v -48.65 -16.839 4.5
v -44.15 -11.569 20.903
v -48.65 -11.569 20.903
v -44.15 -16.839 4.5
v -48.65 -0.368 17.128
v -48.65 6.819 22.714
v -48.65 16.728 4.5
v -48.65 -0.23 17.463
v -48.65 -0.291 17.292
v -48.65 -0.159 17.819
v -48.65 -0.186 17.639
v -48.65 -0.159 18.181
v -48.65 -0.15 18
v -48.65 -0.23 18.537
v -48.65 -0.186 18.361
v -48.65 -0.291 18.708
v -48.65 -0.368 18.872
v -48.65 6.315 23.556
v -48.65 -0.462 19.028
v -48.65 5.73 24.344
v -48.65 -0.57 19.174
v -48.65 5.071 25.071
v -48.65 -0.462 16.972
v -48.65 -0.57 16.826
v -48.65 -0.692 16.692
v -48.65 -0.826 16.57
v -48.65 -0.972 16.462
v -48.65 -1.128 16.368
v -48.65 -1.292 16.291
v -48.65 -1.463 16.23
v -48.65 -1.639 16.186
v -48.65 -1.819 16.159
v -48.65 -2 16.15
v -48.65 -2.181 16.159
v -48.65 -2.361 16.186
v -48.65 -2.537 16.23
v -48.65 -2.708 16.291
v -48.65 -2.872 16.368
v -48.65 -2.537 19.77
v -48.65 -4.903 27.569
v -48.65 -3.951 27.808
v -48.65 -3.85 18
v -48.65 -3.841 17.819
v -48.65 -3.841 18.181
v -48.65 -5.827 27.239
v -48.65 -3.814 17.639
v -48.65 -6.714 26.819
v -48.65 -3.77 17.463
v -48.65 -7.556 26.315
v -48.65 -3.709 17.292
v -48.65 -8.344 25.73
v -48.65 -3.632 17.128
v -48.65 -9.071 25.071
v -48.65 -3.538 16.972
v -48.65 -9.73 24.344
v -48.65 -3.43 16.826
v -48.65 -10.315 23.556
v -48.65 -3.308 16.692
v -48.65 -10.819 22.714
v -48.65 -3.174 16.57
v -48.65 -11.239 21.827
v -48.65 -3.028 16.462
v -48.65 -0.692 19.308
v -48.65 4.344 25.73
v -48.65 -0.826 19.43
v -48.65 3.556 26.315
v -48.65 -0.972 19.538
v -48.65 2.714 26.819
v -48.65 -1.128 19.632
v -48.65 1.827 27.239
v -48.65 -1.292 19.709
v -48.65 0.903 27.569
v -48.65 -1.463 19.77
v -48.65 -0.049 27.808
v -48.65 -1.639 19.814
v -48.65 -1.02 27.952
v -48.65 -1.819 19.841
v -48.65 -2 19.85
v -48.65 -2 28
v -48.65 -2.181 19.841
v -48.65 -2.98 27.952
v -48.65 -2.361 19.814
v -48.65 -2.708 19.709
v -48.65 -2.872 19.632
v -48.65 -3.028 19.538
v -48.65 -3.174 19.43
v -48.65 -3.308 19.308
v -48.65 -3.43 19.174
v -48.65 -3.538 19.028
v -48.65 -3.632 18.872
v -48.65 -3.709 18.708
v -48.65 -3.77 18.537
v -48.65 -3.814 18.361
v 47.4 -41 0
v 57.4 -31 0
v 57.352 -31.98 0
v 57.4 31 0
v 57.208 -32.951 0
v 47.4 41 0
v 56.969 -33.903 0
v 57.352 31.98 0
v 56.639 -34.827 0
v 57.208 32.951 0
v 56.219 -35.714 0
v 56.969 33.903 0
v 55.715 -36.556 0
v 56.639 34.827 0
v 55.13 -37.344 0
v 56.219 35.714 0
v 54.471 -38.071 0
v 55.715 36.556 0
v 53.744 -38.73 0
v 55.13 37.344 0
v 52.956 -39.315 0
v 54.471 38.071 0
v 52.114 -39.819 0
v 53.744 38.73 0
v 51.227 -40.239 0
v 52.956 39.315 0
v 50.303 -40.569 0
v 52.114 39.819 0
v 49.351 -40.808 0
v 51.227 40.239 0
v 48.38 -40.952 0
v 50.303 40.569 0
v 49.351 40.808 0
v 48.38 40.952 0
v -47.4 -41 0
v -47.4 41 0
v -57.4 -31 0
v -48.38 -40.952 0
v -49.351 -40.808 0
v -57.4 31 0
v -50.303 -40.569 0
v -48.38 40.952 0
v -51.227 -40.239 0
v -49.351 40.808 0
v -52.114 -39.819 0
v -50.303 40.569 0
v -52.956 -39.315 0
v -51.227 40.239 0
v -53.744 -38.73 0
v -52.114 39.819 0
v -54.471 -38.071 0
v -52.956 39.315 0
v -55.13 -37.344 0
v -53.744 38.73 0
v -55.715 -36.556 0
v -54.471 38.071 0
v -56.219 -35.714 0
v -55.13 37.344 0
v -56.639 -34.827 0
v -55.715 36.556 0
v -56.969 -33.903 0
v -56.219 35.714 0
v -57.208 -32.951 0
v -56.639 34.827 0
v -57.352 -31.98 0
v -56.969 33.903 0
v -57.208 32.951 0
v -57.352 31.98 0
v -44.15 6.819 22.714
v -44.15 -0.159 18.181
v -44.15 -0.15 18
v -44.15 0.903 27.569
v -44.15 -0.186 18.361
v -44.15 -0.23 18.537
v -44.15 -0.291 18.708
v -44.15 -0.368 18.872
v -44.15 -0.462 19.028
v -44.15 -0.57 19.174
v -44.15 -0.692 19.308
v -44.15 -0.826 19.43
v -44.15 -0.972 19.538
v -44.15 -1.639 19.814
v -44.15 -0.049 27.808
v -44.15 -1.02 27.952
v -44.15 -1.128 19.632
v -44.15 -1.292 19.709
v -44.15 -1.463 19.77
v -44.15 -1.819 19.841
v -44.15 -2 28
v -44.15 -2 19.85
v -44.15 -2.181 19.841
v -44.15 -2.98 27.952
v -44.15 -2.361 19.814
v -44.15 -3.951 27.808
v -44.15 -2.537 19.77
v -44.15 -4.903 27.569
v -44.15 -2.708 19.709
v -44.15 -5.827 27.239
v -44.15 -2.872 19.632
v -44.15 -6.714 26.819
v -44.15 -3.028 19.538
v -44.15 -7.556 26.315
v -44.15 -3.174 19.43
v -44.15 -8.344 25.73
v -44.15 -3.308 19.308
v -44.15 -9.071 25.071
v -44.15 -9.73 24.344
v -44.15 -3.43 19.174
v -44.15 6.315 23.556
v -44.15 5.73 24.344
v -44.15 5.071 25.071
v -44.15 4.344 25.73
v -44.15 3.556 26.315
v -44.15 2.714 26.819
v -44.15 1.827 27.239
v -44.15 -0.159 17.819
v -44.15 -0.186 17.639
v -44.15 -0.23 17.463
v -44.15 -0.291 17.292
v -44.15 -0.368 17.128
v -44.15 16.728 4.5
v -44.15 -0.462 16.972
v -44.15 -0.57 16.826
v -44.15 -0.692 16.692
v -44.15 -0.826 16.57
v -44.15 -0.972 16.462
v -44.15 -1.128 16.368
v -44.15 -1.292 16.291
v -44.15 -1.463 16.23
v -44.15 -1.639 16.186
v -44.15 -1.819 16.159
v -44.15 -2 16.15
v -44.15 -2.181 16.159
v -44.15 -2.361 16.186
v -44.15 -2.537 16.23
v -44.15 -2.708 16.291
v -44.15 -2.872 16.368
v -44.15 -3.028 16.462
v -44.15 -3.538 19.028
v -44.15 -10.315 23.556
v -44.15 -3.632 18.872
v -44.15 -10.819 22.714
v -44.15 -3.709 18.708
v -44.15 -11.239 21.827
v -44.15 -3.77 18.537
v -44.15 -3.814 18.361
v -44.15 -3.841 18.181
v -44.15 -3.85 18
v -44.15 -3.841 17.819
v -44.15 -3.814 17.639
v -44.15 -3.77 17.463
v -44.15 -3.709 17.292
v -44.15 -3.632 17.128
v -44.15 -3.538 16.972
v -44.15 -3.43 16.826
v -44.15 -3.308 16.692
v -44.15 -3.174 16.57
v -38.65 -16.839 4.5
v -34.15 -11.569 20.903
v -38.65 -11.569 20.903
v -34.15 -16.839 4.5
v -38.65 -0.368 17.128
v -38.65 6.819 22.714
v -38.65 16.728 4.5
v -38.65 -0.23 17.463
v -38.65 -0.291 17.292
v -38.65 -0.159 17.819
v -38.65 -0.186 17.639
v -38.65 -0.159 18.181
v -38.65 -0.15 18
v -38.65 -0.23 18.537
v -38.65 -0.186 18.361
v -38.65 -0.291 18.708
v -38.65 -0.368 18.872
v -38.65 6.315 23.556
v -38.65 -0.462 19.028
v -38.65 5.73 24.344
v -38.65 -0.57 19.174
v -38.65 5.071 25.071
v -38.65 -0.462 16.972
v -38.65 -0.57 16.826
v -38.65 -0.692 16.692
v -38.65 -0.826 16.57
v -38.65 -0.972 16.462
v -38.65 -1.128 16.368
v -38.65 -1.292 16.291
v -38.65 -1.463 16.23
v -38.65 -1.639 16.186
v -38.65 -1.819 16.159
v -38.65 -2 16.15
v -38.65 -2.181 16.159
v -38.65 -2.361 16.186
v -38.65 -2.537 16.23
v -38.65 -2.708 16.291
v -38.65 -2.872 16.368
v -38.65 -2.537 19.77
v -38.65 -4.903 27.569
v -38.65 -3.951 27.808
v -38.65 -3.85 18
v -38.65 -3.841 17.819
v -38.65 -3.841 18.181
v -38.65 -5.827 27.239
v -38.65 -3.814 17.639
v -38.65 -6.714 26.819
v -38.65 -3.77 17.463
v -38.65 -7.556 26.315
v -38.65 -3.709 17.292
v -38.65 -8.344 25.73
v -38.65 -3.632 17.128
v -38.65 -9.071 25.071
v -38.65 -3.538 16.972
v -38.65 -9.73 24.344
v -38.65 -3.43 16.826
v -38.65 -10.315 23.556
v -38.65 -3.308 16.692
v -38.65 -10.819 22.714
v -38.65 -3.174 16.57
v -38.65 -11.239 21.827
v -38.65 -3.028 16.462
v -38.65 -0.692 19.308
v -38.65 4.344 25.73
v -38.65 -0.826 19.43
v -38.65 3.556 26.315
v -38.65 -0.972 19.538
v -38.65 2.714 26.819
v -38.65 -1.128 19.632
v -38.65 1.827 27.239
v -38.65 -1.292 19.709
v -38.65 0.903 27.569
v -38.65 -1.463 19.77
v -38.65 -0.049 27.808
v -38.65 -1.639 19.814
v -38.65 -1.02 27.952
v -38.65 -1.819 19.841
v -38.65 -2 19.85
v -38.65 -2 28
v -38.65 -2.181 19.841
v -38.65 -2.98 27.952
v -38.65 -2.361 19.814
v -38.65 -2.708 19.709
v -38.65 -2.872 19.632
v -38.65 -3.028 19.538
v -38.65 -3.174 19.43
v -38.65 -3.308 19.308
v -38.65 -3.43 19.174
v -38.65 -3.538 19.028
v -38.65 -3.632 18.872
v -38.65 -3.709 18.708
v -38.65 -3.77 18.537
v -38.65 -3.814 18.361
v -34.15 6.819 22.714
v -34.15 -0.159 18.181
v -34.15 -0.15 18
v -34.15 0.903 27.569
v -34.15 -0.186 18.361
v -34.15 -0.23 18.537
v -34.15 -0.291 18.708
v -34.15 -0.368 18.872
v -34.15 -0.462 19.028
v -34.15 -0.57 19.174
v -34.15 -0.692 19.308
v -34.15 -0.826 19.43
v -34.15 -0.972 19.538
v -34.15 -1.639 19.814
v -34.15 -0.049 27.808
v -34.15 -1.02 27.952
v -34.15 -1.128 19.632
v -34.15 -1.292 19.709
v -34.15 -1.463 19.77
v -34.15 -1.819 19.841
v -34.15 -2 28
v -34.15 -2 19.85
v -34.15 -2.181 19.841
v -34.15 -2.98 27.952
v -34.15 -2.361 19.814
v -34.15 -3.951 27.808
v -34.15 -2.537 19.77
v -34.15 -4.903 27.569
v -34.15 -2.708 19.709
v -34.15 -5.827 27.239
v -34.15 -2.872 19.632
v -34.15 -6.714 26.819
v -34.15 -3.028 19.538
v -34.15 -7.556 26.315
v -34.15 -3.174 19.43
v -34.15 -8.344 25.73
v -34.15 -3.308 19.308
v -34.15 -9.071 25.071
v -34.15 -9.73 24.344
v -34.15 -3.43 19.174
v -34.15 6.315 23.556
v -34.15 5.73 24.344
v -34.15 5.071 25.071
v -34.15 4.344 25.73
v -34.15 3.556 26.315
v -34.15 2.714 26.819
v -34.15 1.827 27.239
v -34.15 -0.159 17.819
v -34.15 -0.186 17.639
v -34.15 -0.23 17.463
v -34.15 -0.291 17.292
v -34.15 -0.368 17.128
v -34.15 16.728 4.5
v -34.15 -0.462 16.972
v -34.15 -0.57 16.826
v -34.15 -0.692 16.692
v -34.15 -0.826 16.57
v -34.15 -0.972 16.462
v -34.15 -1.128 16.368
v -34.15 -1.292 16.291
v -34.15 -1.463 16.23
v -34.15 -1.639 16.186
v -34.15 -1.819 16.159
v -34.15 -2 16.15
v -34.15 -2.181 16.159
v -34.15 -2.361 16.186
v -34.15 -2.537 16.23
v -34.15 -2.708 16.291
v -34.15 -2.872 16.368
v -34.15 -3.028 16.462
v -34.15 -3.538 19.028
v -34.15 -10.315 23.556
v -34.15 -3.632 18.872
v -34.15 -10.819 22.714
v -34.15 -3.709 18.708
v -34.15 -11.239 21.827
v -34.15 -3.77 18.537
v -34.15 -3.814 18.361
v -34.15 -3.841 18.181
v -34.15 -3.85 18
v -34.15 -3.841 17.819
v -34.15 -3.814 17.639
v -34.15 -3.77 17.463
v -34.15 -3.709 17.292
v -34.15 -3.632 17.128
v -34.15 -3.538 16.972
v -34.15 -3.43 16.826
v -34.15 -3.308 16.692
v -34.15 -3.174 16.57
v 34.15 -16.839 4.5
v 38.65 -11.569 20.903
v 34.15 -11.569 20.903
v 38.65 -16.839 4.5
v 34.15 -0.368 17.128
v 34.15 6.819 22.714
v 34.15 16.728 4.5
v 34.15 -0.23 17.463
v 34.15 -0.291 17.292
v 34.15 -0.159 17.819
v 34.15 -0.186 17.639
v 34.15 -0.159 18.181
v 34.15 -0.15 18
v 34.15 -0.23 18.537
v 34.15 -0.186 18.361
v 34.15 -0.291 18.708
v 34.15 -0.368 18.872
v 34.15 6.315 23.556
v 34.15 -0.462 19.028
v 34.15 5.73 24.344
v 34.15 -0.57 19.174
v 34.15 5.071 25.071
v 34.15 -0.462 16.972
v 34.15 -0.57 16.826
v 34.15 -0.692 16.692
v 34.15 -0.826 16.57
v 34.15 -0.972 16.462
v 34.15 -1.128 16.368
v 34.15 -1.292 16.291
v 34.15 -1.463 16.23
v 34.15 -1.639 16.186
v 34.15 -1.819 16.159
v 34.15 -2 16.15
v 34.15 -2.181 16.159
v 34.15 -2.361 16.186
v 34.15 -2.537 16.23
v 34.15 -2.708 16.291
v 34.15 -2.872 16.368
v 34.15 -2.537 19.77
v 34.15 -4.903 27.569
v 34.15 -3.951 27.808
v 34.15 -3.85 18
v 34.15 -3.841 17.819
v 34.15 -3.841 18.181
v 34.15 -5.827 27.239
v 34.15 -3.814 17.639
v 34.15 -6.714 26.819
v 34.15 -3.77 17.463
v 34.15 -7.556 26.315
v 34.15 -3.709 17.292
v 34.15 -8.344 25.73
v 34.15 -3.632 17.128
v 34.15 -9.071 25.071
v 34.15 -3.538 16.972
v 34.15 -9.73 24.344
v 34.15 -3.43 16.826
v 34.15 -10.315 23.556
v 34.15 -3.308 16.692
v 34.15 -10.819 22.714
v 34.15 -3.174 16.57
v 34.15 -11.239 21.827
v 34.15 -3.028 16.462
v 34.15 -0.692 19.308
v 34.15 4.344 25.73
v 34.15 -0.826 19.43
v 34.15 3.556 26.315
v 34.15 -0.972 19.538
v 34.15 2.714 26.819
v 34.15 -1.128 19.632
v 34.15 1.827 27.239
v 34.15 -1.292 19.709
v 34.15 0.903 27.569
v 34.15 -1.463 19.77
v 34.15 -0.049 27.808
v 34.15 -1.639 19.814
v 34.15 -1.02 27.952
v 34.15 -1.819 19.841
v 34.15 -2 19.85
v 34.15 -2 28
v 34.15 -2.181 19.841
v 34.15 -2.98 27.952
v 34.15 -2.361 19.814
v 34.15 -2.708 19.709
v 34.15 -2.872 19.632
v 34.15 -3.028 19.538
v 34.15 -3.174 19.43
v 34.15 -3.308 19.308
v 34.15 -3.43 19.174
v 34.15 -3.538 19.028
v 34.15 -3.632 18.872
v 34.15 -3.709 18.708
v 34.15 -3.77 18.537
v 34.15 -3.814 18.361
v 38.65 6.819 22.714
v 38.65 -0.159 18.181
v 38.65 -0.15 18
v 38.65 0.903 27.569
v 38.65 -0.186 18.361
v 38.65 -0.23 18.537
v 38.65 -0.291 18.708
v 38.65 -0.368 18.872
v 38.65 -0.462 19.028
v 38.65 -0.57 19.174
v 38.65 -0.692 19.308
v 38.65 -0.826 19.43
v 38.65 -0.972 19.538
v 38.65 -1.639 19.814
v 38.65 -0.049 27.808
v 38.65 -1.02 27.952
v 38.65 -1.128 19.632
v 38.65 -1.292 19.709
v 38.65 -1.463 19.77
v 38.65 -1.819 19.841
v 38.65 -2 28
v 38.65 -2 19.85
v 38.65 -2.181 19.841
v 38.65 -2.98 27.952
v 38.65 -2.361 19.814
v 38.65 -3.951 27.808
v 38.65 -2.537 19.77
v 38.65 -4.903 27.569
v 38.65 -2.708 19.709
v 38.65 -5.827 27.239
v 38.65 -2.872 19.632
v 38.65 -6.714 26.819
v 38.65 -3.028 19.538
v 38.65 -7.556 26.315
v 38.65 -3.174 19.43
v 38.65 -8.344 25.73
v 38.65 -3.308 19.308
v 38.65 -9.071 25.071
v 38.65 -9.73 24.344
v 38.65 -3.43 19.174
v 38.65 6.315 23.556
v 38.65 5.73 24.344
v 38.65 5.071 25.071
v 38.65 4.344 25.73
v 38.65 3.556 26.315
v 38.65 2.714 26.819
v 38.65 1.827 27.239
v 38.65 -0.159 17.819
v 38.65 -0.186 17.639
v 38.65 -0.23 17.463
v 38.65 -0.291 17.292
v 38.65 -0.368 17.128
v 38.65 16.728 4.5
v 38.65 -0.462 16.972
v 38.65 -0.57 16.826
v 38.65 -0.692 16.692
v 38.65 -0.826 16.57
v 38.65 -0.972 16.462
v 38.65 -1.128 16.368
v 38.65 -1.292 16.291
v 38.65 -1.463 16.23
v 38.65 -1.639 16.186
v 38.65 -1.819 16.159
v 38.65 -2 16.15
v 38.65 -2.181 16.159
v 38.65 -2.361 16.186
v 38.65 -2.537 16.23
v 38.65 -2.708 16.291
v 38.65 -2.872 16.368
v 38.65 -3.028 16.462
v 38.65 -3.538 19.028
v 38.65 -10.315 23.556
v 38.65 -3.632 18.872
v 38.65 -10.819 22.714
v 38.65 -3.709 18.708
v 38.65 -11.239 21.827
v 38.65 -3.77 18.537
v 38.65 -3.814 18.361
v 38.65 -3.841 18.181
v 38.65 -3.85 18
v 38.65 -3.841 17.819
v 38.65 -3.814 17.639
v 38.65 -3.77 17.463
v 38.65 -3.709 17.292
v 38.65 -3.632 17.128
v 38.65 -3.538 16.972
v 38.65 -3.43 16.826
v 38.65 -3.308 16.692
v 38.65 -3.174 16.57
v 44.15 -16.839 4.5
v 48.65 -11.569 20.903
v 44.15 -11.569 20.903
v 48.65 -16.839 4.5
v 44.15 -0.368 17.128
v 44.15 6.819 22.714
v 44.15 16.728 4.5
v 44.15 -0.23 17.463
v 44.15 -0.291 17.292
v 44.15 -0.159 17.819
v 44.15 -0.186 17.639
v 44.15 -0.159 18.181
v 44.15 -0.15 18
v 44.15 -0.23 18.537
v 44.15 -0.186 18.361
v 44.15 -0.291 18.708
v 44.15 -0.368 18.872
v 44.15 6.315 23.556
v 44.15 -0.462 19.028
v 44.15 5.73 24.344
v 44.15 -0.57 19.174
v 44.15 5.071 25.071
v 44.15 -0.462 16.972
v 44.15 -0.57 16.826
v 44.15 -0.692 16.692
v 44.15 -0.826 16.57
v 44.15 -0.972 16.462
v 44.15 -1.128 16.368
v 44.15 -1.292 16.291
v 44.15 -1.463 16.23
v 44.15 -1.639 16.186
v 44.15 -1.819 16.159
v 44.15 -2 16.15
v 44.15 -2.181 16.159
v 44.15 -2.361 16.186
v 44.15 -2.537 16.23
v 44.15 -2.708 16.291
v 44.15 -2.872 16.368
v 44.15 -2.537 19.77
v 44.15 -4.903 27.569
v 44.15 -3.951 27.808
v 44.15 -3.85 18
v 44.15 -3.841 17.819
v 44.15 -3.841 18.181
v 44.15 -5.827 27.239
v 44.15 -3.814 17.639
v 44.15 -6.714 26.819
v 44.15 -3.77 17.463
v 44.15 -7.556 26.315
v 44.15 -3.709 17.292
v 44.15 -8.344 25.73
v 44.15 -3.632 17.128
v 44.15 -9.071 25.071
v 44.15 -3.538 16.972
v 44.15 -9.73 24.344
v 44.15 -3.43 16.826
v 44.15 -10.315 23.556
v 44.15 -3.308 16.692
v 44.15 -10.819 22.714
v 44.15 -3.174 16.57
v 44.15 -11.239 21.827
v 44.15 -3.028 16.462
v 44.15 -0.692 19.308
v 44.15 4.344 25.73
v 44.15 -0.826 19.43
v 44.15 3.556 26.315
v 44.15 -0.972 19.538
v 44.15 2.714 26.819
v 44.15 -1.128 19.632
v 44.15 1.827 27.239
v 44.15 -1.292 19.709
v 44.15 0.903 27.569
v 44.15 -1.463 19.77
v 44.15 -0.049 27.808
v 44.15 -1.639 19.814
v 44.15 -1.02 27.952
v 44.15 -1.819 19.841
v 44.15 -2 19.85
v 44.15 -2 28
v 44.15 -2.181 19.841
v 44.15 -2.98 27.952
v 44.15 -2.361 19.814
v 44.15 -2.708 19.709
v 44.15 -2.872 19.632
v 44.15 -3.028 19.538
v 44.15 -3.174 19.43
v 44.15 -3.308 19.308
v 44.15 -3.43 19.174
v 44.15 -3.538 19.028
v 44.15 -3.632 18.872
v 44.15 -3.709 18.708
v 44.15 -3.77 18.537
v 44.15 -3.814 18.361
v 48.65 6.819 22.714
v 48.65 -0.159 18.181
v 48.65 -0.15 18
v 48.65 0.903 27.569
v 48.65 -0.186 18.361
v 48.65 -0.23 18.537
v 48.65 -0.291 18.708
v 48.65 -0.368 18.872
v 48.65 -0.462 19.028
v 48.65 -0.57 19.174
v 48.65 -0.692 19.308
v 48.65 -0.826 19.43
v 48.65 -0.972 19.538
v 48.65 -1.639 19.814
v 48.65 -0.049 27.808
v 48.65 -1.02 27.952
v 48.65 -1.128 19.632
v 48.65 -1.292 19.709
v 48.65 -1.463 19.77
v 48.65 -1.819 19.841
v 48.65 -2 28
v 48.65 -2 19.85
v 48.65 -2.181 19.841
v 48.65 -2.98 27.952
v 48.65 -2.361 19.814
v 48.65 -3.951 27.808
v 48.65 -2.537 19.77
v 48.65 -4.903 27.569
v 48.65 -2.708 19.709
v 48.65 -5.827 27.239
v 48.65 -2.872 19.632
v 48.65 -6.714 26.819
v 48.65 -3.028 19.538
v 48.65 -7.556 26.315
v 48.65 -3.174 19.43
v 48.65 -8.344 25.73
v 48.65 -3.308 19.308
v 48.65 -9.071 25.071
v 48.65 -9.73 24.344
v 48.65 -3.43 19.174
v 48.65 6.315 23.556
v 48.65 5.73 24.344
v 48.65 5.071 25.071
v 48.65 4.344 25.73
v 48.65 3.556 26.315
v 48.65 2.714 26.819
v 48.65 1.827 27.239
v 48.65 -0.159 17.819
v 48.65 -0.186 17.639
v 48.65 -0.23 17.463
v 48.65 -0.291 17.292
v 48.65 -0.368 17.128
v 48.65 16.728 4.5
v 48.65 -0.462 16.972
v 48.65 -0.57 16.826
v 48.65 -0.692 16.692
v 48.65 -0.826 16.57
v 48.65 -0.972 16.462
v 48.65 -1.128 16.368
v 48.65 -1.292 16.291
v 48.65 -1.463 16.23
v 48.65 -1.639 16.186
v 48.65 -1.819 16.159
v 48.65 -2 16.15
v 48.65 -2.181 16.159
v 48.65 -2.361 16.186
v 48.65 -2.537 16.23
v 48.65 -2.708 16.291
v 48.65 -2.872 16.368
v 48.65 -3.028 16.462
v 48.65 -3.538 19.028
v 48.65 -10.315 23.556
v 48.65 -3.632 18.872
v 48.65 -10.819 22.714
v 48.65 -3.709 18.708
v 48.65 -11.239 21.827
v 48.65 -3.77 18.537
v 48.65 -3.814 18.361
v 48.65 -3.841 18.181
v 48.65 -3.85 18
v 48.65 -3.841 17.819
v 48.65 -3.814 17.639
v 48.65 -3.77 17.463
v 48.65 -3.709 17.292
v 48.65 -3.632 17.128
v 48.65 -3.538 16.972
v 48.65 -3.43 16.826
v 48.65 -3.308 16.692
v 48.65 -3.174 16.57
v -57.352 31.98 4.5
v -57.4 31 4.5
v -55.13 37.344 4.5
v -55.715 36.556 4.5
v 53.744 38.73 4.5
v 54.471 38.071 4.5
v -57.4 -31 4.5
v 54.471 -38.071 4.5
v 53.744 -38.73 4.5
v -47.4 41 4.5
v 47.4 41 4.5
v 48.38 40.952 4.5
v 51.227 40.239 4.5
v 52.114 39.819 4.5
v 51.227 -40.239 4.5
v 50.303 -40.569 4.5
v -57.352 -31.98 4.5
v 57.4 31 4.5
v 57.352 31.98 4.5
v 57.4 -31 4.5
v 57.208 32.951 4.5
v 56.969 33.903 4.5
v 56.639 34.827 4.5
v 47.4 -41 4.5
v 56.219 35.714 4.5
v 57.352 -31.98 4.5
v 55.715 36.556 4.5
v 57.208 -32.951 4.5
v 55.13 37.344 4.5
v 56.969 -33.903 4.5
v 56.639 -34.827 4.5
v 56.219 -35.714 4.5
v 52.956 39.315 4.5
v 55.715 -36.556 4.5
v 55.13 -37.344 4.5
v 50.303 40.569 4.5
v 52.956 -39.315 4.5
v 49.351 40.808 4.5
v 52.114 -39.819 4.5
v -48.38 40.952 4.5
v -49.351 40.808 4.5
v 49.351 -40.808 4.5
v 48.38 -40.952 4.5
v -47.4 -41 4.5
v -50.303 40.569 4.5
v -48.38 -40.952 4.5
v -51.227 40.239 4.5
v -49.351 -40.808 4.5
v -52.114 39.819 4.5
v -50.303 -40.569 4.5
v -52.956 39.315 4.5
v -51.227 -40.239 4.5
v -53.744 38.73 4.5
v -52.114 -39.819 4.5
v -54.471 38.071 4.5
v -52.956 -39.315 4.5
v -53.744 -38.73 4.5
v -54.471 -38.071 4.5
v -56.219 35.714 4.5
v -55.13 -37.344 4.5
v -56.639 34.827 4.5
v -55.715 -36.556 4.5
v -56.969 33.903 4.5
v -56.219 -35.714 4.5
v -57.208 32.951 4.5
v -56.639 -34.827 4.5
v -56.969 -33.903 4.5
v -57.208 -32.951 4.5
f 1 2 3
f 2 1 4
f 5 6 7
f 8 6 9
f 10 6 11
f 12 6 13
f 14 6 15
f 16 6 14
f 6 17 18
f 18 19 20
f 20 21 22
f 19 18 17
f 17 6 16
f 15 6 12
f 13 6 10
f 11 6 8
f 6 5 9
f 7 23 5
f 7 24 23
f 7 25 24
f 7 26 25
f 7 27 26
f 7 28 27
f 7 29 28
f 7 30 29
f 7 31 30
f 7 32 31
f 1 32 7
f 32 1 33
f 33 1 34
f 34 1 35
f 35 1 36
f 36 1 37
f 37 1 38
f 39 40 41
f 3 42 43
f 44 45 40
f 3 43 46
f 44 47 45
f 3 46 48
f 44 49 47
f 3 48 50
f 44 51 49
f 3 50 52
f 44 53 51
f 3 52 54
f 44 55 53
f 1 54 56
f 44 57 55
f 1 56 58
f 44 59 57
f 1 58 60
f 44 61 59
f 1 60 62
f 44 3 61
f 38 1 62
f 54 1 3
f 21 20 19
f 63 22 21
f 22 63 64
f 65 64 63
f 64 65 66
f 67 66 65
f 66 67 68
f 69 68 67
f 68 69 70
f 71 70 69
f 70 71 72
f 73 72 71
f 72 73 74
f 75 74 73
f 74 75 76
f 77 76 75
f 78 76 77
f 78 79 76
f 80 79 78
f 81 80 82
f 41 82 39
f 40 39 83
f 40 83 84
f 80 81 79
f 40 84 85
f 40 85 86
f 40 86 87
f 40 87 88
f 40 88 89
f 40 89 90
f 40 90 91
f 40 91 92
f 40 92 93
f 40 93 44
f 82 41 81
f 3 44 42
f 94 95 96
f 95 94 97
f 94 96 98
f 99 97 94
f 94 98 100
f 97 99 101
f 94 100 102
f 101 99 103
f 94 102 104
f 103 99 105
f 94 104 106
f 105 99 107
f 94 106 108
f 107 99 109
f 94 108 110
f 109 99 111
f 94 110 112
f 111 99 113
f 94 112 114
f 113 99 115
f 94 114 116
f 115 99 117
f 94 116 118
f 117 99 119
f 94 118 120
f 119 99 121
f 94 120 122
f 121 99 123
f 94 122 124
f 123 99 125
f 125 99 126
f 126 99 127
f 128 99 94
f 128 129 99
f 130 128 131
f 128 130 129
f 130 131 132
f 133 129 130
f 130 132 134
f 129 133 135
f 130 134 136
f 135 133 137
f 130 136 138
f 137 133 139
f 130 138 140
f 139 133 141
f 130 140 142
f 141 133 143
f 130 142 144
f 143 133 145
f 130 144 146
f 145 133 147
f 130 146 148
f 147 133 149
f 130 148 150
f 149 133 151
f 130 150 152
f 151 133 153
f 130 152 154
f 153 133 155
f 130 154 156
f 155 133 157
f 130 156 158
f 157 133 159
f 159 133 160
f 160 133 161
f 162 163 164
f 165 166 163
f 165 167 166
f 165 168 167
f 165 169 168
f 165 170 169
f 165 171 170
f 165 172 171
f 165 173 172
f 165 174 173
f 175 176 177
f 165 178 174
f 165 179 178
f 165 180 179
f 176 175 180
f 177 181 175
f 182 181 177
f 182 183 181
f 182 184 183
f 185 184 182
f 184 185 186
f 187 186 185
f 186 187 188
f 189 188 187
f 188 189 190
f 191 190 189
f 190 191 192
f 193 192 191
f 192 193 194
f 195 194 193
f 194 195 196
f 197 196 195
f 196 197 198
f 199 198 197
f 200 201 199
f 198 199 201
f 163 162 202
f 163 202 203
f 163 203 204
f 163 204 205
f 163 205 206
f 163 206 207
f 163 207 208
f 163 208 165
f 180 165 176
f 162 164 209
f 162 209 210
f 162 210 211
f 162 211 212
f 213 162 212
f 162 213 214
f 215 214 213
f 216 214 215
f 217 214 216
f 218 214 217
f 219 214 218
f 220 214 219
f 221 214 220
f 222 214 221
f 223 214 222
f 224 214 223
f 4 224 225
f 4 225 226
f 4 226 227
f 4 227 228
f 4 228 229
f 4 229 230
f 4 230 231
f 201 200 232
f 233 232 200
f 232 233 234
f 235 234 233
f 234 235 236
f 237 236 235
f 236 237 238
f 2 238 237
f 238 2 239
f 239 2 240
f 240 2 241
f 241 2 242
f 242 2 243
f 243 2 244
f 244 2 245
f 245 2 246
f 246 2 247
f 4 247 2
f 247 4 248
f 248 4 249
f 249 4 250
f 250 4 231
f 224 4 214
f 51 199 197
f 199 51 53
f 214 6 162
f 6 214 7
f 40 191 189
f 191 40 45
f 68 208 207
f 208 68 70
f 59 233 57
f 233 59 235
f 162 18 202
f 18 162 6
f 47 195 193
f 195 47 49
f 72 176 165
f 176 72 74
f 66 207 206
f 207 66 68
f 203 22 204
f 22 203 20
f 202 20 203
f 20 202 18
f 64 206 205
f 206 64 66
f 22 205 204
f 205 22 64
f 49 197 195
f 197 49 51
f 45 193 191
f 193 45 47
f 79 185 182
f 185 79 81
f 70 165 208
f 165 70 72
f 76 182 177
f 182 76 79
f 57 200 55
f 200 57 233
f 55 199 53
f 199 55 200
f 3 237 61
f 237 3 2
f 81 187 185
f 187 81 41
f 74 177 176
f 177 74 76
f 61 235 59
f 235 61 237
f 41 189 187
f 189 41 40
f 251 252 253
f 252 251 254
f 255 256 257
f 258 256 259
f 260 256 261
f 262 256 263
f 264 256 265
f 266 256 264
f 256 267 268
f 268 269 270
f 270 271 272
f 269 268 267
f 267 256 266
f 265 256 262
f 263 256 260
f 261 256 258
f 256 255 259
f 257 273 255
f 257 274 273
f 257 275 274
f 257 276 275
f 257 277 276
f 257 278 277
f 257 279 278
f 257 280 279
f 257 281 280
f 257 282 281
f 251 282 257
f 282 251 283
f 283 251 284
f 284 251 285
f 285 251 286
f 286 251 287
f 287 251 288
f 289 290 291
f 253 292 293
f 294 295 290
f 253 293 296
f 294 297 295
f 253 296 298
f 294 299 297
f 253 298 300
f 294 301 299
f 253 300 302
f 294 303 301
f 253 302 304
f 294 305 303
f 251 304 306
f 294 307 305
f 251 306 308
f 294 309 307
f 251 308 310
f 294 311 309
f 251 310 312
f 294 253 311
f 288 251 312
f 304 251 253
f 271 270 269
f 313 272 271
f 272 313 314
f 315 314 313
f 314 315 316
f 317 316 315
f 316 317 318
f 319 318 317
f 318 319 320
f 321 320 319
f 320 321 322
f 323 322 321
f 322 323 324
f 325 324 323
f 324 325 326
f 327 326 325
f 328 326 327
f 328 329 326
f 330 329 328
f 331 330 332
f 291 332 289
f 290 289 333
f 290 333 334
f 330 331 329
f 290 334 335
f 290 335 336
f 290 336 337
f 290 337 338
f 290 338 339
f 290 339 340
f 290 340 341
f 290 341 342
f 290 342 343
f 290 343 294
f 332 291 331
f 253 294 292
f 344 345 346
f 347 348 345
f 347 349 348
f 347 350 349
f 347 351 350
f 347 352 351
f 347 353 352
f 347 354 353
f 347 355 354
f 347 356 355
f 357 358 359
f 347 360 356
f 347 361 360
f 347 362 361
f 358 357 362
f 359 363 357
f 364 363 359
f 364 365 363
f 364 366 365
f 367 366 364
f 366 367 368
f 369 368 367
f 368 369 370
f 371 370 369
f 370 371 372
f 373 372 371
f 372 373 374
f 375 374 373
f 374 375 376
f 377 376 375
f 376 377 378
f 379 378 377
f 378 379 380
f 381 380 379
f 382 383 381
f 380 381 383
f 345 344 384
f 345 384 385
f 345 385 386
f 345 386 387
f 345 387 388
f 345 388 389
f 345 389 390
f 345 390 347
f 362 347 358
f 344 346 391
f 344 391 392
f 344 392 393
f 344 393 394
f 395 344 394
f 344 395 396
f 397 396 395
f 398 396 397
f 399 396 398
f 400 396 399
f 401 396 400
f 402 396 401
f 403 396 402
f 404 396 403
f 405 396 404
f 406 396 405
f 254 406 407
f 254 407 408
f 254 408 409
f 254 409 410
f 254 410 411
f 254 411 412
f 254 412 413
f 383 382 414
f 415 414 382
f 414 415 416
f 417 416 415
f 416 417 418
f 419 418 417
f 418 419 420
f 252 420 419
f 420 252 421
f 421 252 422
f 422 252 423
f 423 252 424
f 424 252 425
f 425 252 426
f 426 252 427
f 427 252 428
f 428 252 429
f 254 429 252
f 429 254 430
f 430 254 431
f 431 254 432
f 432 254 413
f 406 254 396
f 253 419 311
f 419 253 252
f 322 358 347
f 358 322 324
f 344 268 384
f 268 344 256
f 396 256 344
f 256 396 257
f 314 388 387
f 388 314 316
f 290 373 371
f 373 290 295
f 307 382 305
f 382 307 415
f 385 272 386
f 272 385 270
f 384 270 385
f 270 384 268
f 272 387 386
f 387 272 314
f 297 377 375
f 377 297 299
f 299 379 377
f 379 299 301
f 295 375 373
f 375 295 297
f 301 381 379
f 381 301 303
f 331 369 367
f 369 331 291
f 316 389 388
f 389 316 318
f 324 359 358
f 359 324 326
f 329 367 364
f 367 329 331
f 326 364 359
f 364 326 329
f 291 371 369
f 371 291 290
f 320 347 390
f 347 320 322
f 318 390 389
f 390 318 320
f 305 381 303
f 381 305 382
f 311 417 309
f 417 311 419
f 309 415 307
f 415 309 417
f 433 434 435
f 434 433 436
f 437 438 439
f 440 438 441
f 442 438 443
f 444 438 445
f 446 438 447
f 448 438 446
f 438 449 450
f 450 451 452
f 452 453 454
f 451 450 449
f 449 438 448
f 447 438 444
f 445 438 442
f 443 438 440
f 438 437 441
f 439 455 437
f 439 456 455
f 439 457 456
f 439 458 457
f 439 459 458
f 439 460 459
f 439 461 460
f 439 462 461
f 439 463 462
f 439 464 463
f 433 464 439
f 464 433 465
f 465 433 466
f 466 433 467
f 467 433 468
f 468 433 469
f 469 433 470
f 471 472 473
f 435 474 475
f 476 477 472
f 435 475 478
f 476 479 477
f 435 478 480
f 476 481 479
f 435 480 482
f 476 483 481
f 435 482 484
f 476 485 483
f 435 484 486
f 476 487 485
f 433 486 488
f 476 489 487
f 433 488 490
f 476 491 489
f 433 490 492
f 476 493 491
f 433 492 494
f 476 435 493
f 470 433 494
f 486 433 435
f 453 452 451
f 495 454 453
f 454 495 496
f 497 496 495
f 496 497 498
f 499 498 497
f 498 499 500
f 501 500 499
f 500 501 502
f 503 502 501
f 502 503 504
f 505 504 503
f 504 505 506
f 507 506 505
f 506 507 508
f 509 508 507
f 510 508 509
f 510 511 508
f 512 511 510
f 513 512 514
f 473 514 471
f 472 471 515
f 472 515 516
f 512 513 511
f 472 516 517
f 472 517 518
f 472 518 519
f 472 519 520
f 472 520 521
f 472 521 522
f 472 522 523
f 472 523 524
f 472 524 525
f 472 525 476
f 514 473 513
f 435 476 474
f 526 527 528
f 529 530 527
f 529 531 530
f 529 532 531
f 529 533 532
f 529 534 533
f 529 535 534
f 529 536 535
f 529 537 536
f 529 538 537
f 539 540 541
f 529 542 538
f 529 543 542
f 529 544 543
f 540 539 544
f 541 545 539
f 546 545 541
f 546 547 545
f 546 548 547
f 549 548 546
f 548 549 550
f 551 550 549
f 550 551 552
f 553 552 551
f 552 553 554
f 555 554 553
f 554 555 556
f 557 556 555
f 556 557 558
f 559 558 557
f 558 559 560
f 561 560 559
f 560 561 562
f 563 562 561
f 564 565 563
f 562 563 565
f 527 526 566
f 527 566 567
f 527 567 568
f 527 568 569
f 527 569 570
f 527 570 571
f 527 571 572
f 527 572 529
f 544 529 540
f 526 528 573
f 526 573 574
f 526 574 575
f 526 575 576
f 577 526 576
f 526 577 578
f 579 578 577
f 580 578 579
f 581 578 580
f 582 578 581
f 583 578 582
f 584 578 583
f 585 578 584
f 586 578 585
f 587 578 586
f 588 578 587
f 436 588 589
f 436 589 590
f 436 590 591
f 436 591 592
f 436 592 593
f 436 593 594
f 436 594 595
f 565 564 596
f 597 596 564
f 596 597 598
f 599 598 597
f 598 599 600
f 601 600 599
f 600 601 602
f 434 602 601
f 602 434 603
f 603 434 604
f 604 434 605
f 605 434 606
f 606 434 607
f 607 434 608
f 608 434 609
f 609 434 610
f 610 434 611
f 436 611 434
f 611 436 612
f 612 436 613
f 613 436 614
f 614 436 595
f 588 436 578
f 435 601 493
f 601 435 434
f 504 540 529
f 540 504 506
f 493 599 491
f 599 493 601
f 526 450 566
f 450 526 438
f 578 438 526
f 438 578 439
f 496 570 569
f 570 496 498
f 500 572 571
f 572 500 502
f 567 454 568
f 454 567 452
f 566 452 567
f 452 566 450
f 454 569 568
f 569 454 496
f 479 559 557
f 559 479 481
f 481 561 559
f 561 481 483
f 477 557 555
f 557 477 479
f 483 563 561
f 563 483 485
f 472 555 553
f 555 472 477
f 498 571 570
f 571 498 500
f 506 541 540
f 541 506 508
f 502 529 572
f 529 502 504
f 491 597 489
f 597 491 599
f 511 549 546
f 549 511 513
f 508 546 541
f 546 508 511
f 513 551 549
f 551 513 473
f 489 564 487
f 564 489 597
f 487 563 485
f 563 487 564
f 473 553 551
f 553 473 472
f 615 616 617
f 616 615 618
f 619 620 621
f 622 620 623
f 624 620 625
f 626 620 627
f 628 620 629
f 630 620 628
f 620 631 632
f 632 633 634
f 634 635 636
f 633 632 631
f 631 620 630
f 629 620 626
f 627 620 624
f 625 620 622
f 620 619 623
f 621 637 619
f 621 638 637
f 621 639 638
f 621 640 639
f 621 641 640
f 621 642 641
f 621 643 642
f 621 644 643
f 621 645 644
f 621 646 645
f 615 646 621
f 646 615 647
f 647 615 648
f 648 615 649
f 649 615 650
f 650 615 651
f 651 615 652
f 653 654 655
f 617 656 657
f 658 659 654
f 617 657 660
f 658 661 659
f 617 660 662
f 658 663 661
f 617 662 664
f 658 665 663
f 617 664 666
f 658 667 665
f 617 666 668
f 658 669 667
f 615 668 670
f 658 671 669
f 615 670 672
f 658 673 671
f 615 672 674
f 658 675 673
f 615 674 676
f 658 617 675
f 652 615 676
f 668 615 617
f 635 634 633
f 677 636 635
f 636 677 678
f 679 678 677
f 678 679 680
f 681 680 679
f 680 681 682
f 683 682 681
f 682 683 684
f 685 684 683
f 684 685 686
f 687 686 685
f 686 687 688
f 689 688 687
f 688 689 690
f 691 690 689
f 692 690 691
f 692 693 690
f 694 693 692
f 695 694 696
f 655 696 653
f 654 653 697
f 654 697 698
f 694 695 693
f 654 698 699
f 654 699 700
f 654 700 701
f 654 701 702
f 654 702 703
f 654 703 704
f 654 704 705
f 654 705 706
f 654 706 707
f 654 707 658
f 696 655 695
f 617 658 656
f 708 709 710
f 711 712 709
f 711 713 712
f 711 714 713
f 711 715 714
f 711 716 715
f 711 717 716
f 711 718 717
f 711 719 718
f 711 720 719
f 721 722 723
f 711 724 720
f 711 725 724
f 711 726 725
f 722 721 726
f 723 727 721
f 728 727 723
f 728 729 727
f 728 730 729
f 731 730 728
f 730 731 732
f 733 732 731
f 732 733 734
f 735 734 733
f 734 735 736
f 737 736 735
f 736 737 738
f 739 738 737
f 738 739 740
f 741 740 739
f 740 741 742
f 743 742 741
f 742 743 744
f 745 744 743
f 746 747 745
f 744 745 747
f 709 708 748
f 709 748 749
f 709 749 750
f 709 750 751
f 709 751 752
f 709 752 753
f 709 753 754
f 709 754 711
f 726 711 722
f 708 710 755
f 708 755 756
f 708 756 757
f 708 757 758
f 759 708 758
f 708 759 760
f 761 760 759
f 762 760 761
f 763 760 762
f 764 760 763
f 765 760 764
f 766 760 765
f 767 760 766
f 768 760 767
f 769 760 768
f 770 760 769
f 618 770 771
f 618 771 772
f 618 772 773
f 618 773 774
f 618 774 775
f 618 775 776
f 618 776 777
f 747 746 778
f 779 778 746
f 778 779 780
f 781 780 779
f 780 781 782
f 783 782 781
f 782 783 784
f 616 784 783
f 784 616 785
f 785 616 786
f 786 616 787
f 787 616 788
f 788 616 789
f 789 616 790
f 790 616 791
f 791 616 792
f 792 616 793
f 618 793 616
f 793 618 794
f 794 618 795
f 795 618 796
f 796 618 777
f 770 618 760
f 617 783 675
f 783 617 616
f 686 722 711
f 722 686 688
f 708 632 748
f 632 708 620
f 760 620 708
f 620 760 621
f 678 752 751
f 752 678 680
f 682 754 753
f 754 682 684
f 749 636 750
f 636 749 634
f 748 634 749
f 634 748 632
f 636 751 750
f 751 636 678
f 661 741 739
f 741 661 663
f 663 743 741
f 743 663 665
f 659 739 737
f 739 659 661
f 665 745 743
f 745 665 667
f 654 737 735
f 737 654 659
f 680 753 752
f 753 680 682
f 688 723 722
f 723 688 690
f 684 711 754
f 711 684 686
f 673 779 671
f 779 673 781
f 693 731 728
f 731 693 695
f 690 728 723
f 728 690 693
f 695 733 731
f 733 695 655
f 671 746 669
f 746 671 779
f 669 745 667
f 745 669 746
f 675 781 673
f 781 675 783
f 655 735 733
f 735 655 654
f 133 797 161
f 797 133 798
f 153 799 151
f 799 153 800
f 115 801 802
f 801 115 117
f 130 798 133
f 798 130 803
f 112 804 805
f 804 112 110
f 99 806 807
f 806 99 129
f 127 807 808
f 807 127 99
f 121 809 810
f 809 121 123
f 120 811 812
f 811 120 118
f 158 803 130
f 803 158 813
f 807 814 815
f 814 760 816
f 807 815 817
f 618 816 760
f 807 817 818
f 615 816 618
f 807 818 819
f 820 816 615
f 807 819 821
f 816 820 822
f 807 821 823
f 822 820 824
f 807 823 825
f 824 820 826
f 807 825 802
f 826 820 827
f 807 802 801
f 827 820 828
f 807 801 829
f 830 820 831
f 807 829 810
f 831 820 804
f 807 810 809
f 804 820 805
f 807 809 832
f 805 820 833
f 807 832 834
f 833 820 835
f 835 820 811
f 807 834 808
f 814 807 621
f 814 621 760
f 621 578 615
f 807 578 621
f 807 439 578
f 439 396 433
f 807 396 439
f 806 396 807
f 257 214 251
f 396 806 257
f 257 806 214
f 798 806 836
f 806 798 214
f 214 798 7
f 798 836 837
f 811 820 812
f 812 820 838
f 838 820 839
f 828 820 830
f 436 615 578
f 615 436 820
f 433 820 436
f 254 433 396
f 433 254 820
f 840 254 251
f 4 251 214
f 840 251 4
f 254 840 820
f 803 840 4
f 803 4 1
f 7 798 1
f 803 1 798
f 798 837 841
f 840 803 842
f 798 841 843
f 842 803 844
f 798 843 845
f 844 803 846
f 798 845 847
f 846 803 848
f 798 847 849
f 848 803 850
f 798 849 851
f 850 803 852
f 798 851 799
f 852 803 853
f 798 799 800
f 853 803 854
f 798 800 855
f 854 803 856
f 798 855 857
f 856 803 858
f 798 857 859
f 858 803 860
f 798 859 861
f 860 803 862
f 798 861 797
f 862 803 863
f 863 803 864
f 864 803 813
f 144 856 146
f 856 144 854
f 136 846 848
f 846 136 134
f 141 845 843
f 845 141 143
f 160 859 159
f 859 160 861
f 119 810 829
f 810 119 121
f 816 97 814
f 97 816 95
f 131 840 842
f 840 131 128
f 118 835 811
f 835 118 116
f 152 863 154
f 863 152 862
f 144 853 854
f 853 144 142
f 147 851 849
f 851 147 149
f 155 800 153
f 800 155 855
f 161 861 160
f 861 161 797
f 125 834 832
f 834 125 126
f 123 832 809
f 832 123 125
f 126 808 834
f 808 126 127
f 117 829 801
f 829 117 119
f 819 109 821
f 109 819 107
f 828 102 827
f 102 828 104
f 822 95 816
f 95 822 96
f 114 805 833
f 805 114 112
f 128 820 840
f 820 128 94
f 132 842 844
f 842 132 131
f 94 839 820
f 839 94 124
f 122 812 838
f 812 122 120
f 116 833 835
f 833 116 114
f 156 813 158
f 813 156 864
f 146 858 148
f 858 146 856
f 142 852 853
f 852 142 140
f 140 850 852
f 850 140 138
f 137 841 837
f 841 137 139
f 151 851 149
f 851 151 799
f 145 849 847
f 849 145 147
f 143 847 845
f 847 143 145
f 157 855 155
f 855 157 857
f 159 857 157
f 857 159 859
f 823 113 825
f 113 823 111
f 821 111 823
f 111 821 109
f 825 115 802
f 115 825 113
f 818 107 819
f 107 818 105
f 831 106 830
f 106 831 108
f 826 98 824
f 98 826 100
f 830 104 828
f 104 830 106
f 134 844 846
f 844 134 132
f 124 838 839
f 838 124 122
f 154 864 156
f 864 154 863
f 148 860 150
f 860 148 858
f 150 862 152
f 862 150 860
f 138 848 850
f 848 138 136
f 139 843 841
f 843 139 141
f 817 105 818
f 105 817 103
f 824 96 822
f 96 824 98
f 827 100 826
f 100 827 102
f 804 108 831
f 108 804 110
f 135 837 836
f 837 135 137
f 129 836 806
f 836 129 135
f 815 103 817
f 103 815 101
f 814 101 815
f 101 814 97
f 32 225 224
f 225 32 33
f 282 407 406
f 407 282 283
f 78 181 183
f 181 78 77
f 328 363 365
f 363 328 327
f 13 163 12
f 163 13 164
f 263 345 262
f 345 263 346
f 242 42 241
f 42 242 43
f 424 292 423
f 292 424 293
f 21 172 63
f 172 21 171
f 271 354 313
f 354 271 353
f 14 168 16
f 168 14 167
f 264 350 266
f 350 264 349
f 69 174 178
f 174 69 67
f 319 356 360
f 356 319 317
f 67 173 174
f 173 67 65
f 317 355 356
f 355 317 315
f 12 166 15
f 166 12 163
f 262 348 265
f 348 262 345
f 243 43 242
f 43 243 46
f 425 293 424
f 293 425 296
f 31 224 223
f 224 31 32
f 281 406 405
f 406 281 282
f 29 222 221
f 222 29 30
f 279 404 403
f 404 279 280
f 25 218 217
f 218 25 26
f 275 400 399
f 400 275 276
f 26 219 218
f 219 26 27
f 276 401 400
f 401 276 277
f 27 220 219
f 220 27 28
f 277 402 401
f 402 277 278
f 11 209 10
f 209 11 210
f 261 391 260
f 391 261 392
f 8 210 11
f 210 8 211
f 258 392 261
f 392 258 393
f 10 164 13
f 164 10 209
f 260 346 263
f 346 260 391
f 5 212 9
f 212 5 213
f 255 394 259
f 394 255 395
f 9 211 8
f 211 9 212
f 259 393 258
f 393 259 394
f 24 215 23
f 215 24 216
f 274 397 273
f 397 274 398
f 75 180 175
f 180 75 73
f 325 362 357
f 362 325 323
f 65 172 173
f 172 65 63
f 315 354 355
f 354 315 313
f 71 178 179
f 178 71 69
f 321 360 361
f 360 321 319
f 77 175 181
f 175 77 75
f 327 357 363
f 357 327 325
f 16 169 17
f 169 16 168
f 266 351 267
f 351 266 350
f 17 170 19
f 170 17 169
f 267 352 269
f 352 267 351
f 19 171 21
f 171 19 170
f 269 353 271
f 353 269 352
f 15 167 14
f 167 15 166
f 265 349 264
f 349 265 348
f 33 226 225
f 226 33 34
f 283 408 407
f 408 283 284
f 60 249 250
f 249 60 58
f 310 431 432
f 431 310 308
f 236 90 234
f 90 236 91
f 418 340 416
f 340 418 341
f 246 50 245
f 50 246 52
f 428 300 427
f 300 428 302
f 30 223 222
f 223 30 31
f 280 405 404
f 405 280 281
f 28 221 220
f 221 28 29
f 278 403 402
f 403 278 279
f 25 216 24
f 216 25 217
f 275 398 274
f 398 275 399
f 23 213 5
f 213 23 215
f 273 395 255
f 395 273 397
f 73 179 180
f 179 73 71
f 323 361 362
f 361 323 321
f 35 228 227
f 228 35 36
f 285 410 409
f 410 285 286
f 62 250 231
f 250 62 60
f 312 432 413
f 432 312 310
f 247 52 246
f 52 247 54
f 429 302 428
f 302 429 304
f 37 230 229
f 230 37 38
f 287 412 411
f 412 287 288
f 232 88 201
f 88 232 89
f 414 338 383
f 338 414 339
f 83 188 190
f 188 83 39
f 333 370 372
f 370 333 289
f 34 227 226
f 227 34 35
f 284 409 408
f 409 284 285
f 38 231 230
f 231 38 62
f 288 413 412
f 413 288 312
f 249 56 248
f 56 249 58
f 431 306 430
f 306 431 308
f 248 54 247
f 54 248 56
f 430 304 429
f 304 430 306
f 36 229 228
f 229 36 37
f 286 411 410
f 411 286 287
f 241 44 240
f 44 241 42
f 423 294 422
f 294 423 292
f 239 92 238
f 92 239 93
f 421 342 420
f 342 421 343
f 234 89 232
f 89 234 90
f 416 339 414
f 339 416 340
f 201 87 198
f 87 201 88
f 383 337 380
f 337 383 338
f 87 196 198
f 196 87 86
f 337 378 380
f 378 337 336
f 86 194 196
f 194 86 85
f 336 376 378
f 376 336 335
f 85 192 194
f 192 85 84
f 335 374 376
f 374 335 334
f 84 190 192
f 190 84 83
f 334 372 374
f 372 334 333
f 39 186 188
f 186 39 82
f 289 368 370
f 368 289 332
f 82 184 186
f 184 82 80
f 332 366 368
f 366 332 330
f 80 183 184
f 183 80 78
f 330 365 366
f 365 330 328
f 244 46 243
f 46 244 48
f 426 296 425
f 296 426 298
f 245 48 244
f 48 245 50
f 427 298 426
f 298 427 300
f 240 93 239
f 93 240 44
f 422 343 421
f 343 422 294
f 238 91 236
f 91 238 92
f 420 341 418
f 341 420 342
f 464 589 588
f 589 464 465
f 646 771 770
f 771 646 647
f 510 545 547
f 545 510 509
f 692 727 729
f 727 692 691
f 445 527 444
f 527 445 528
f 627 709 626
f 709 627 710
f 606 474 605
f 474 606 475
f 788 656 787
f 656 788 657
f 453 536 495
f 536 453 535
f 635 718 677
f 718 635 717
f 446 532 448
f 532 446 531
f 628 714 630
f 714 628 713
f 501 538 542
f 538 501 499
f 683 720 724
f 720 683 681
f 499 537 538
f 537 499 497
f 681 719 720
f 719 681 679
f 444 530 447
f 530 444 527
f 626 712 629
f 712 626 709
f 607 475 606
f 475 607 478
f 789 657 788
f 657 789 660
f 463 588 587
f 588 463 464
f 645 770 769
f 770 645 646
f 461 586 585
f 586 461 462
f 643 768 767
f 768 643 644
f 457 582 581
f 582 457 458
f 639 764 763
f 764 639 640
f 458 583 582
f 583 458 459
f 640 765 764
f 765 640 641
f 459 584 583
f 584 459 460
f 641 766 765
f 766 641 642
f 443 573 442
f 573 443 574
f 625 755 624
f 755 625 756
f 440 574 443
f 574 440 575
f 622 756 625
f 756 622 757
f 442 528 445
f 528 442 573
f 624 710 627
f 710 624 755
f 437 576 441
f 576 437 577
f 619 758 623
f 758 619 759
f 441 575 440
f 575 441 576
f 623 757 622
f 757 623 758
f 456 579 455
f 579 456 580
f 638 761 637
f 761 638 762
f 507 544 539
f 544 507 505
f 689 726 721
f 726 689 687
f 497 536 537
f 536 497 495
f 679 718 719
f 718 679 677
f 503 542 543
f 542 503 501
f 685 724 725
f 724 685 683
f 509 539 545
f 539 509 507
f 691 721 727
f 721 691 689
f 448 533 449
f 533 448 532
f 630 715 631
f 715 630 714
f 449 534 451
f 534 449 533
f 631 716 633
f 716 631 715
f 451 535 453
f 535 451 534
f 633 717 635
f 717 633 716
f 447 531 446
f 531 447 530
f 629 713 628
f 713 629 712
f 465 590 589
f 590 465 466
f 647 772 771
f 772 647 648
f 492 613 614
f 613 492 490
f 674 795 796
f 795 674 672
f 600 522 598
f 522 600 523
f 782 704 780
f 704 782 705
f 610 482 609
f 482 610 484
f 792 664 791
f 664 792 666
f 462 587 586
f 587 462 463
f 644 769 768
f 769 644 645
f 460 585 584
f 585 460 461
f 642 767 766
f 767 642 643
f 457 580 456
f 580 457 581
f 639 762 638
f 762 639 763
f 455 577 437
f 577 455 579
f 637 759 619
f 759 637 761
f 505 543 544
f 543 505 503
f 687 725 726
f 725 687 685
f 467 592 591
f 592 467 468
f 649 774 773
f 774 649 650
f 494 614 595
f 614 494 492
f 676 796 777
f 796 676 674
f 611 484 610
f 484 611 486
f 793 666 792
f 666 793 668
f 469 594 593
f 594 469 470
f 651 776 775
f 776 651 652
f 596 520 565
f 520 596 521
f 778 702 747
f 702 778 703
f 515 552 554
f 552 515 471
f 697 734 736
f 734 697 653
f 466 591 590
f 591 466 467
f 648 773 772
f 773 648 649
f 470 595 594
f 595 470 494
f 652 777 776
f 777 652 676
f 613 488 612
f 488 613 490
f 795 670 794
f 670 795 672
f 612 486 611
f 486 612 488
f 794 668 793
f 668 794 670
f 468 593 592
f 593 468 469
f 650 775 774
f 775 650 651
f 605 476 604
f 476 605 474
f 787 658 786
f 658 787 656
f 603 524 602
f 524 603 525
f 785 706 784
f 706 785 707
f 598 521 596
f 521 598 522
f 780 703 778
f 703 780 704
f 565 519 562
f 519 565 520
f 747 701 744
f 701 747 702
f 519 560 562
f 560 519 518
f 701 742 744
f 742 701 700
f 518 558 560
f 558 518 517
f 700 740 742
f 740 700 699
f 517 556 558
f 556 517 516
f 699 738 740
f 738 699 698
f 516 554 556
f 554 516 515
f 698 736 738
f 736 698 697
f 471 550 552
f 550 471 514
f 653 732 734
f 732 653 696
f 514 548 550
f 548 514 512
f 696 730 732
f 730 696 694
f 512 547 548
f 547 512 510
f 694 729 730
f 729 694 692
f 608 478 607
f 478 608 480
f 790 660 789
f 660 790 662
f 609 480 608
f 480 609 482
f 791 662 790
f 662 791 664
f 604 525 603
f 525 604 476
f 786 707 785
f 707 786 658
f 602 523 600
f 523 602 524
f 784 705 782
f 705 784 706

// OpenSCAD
// =========================================================
// PEÇA 3: BASE / PEDESTAL COMPACTO (120mm Fan)
// =========================================================

fan_tamanho = 120.0;
furo_rosca = 3.7;
folga_encaixe = 0.4;

parede = 3.2;
raio_canto = 12.0;
largura_base = 82;
espessura_orelha = 5.0;

$fn = 64;

interno = fan_tamanho + folga_encaixe;
externo = interno + parede * 2;
gap_orelha = espessura_orelha + 0.5;
parede_suporte = 4.5;

module caixa_arredondada(larg, alt, prof, r) {
    hull() {
        for (x = [-larg/2 + r, larg/2 - r])
            for (y = [-alt/2 + r, alt/2 - r])
                translate([x, y, 0])
                    cylinder(h = prof, r = r);
    }
}

difference() {
    union() {
        // Sapata de apoio na mesa
        caixa_arredondada(externo - 12, largura_base, 4.5, 10);

        // Torres laterais de fixação da carcaça
        for (lado = [-1, 1]) {
            for (sub = [-1, 1]) {
                translate([lado * (externo/2 - 22) + sub * (gap_orelha/2 + parede_suporte/2), 0, 0])
                hull() {
                    translate([0, 0, 2])
                        cube([parede_suporte, 34, 4], center = true);
                    translate([0, -2, 18])
                    rotate([0, 90, 0])
                        cylinder(h = parede_suporte, d = 20, center = true);
                }
            }
        }
    }

    // Furos M4 nos suportes da base
    for (lado = [-1, 1]) {
        translate([lado * (externo/2 - 22), -2, 18])
        rotate([0, 90, 0])
            cylinder(h = 30, d = furo_rosca, center = true);
    }
}
